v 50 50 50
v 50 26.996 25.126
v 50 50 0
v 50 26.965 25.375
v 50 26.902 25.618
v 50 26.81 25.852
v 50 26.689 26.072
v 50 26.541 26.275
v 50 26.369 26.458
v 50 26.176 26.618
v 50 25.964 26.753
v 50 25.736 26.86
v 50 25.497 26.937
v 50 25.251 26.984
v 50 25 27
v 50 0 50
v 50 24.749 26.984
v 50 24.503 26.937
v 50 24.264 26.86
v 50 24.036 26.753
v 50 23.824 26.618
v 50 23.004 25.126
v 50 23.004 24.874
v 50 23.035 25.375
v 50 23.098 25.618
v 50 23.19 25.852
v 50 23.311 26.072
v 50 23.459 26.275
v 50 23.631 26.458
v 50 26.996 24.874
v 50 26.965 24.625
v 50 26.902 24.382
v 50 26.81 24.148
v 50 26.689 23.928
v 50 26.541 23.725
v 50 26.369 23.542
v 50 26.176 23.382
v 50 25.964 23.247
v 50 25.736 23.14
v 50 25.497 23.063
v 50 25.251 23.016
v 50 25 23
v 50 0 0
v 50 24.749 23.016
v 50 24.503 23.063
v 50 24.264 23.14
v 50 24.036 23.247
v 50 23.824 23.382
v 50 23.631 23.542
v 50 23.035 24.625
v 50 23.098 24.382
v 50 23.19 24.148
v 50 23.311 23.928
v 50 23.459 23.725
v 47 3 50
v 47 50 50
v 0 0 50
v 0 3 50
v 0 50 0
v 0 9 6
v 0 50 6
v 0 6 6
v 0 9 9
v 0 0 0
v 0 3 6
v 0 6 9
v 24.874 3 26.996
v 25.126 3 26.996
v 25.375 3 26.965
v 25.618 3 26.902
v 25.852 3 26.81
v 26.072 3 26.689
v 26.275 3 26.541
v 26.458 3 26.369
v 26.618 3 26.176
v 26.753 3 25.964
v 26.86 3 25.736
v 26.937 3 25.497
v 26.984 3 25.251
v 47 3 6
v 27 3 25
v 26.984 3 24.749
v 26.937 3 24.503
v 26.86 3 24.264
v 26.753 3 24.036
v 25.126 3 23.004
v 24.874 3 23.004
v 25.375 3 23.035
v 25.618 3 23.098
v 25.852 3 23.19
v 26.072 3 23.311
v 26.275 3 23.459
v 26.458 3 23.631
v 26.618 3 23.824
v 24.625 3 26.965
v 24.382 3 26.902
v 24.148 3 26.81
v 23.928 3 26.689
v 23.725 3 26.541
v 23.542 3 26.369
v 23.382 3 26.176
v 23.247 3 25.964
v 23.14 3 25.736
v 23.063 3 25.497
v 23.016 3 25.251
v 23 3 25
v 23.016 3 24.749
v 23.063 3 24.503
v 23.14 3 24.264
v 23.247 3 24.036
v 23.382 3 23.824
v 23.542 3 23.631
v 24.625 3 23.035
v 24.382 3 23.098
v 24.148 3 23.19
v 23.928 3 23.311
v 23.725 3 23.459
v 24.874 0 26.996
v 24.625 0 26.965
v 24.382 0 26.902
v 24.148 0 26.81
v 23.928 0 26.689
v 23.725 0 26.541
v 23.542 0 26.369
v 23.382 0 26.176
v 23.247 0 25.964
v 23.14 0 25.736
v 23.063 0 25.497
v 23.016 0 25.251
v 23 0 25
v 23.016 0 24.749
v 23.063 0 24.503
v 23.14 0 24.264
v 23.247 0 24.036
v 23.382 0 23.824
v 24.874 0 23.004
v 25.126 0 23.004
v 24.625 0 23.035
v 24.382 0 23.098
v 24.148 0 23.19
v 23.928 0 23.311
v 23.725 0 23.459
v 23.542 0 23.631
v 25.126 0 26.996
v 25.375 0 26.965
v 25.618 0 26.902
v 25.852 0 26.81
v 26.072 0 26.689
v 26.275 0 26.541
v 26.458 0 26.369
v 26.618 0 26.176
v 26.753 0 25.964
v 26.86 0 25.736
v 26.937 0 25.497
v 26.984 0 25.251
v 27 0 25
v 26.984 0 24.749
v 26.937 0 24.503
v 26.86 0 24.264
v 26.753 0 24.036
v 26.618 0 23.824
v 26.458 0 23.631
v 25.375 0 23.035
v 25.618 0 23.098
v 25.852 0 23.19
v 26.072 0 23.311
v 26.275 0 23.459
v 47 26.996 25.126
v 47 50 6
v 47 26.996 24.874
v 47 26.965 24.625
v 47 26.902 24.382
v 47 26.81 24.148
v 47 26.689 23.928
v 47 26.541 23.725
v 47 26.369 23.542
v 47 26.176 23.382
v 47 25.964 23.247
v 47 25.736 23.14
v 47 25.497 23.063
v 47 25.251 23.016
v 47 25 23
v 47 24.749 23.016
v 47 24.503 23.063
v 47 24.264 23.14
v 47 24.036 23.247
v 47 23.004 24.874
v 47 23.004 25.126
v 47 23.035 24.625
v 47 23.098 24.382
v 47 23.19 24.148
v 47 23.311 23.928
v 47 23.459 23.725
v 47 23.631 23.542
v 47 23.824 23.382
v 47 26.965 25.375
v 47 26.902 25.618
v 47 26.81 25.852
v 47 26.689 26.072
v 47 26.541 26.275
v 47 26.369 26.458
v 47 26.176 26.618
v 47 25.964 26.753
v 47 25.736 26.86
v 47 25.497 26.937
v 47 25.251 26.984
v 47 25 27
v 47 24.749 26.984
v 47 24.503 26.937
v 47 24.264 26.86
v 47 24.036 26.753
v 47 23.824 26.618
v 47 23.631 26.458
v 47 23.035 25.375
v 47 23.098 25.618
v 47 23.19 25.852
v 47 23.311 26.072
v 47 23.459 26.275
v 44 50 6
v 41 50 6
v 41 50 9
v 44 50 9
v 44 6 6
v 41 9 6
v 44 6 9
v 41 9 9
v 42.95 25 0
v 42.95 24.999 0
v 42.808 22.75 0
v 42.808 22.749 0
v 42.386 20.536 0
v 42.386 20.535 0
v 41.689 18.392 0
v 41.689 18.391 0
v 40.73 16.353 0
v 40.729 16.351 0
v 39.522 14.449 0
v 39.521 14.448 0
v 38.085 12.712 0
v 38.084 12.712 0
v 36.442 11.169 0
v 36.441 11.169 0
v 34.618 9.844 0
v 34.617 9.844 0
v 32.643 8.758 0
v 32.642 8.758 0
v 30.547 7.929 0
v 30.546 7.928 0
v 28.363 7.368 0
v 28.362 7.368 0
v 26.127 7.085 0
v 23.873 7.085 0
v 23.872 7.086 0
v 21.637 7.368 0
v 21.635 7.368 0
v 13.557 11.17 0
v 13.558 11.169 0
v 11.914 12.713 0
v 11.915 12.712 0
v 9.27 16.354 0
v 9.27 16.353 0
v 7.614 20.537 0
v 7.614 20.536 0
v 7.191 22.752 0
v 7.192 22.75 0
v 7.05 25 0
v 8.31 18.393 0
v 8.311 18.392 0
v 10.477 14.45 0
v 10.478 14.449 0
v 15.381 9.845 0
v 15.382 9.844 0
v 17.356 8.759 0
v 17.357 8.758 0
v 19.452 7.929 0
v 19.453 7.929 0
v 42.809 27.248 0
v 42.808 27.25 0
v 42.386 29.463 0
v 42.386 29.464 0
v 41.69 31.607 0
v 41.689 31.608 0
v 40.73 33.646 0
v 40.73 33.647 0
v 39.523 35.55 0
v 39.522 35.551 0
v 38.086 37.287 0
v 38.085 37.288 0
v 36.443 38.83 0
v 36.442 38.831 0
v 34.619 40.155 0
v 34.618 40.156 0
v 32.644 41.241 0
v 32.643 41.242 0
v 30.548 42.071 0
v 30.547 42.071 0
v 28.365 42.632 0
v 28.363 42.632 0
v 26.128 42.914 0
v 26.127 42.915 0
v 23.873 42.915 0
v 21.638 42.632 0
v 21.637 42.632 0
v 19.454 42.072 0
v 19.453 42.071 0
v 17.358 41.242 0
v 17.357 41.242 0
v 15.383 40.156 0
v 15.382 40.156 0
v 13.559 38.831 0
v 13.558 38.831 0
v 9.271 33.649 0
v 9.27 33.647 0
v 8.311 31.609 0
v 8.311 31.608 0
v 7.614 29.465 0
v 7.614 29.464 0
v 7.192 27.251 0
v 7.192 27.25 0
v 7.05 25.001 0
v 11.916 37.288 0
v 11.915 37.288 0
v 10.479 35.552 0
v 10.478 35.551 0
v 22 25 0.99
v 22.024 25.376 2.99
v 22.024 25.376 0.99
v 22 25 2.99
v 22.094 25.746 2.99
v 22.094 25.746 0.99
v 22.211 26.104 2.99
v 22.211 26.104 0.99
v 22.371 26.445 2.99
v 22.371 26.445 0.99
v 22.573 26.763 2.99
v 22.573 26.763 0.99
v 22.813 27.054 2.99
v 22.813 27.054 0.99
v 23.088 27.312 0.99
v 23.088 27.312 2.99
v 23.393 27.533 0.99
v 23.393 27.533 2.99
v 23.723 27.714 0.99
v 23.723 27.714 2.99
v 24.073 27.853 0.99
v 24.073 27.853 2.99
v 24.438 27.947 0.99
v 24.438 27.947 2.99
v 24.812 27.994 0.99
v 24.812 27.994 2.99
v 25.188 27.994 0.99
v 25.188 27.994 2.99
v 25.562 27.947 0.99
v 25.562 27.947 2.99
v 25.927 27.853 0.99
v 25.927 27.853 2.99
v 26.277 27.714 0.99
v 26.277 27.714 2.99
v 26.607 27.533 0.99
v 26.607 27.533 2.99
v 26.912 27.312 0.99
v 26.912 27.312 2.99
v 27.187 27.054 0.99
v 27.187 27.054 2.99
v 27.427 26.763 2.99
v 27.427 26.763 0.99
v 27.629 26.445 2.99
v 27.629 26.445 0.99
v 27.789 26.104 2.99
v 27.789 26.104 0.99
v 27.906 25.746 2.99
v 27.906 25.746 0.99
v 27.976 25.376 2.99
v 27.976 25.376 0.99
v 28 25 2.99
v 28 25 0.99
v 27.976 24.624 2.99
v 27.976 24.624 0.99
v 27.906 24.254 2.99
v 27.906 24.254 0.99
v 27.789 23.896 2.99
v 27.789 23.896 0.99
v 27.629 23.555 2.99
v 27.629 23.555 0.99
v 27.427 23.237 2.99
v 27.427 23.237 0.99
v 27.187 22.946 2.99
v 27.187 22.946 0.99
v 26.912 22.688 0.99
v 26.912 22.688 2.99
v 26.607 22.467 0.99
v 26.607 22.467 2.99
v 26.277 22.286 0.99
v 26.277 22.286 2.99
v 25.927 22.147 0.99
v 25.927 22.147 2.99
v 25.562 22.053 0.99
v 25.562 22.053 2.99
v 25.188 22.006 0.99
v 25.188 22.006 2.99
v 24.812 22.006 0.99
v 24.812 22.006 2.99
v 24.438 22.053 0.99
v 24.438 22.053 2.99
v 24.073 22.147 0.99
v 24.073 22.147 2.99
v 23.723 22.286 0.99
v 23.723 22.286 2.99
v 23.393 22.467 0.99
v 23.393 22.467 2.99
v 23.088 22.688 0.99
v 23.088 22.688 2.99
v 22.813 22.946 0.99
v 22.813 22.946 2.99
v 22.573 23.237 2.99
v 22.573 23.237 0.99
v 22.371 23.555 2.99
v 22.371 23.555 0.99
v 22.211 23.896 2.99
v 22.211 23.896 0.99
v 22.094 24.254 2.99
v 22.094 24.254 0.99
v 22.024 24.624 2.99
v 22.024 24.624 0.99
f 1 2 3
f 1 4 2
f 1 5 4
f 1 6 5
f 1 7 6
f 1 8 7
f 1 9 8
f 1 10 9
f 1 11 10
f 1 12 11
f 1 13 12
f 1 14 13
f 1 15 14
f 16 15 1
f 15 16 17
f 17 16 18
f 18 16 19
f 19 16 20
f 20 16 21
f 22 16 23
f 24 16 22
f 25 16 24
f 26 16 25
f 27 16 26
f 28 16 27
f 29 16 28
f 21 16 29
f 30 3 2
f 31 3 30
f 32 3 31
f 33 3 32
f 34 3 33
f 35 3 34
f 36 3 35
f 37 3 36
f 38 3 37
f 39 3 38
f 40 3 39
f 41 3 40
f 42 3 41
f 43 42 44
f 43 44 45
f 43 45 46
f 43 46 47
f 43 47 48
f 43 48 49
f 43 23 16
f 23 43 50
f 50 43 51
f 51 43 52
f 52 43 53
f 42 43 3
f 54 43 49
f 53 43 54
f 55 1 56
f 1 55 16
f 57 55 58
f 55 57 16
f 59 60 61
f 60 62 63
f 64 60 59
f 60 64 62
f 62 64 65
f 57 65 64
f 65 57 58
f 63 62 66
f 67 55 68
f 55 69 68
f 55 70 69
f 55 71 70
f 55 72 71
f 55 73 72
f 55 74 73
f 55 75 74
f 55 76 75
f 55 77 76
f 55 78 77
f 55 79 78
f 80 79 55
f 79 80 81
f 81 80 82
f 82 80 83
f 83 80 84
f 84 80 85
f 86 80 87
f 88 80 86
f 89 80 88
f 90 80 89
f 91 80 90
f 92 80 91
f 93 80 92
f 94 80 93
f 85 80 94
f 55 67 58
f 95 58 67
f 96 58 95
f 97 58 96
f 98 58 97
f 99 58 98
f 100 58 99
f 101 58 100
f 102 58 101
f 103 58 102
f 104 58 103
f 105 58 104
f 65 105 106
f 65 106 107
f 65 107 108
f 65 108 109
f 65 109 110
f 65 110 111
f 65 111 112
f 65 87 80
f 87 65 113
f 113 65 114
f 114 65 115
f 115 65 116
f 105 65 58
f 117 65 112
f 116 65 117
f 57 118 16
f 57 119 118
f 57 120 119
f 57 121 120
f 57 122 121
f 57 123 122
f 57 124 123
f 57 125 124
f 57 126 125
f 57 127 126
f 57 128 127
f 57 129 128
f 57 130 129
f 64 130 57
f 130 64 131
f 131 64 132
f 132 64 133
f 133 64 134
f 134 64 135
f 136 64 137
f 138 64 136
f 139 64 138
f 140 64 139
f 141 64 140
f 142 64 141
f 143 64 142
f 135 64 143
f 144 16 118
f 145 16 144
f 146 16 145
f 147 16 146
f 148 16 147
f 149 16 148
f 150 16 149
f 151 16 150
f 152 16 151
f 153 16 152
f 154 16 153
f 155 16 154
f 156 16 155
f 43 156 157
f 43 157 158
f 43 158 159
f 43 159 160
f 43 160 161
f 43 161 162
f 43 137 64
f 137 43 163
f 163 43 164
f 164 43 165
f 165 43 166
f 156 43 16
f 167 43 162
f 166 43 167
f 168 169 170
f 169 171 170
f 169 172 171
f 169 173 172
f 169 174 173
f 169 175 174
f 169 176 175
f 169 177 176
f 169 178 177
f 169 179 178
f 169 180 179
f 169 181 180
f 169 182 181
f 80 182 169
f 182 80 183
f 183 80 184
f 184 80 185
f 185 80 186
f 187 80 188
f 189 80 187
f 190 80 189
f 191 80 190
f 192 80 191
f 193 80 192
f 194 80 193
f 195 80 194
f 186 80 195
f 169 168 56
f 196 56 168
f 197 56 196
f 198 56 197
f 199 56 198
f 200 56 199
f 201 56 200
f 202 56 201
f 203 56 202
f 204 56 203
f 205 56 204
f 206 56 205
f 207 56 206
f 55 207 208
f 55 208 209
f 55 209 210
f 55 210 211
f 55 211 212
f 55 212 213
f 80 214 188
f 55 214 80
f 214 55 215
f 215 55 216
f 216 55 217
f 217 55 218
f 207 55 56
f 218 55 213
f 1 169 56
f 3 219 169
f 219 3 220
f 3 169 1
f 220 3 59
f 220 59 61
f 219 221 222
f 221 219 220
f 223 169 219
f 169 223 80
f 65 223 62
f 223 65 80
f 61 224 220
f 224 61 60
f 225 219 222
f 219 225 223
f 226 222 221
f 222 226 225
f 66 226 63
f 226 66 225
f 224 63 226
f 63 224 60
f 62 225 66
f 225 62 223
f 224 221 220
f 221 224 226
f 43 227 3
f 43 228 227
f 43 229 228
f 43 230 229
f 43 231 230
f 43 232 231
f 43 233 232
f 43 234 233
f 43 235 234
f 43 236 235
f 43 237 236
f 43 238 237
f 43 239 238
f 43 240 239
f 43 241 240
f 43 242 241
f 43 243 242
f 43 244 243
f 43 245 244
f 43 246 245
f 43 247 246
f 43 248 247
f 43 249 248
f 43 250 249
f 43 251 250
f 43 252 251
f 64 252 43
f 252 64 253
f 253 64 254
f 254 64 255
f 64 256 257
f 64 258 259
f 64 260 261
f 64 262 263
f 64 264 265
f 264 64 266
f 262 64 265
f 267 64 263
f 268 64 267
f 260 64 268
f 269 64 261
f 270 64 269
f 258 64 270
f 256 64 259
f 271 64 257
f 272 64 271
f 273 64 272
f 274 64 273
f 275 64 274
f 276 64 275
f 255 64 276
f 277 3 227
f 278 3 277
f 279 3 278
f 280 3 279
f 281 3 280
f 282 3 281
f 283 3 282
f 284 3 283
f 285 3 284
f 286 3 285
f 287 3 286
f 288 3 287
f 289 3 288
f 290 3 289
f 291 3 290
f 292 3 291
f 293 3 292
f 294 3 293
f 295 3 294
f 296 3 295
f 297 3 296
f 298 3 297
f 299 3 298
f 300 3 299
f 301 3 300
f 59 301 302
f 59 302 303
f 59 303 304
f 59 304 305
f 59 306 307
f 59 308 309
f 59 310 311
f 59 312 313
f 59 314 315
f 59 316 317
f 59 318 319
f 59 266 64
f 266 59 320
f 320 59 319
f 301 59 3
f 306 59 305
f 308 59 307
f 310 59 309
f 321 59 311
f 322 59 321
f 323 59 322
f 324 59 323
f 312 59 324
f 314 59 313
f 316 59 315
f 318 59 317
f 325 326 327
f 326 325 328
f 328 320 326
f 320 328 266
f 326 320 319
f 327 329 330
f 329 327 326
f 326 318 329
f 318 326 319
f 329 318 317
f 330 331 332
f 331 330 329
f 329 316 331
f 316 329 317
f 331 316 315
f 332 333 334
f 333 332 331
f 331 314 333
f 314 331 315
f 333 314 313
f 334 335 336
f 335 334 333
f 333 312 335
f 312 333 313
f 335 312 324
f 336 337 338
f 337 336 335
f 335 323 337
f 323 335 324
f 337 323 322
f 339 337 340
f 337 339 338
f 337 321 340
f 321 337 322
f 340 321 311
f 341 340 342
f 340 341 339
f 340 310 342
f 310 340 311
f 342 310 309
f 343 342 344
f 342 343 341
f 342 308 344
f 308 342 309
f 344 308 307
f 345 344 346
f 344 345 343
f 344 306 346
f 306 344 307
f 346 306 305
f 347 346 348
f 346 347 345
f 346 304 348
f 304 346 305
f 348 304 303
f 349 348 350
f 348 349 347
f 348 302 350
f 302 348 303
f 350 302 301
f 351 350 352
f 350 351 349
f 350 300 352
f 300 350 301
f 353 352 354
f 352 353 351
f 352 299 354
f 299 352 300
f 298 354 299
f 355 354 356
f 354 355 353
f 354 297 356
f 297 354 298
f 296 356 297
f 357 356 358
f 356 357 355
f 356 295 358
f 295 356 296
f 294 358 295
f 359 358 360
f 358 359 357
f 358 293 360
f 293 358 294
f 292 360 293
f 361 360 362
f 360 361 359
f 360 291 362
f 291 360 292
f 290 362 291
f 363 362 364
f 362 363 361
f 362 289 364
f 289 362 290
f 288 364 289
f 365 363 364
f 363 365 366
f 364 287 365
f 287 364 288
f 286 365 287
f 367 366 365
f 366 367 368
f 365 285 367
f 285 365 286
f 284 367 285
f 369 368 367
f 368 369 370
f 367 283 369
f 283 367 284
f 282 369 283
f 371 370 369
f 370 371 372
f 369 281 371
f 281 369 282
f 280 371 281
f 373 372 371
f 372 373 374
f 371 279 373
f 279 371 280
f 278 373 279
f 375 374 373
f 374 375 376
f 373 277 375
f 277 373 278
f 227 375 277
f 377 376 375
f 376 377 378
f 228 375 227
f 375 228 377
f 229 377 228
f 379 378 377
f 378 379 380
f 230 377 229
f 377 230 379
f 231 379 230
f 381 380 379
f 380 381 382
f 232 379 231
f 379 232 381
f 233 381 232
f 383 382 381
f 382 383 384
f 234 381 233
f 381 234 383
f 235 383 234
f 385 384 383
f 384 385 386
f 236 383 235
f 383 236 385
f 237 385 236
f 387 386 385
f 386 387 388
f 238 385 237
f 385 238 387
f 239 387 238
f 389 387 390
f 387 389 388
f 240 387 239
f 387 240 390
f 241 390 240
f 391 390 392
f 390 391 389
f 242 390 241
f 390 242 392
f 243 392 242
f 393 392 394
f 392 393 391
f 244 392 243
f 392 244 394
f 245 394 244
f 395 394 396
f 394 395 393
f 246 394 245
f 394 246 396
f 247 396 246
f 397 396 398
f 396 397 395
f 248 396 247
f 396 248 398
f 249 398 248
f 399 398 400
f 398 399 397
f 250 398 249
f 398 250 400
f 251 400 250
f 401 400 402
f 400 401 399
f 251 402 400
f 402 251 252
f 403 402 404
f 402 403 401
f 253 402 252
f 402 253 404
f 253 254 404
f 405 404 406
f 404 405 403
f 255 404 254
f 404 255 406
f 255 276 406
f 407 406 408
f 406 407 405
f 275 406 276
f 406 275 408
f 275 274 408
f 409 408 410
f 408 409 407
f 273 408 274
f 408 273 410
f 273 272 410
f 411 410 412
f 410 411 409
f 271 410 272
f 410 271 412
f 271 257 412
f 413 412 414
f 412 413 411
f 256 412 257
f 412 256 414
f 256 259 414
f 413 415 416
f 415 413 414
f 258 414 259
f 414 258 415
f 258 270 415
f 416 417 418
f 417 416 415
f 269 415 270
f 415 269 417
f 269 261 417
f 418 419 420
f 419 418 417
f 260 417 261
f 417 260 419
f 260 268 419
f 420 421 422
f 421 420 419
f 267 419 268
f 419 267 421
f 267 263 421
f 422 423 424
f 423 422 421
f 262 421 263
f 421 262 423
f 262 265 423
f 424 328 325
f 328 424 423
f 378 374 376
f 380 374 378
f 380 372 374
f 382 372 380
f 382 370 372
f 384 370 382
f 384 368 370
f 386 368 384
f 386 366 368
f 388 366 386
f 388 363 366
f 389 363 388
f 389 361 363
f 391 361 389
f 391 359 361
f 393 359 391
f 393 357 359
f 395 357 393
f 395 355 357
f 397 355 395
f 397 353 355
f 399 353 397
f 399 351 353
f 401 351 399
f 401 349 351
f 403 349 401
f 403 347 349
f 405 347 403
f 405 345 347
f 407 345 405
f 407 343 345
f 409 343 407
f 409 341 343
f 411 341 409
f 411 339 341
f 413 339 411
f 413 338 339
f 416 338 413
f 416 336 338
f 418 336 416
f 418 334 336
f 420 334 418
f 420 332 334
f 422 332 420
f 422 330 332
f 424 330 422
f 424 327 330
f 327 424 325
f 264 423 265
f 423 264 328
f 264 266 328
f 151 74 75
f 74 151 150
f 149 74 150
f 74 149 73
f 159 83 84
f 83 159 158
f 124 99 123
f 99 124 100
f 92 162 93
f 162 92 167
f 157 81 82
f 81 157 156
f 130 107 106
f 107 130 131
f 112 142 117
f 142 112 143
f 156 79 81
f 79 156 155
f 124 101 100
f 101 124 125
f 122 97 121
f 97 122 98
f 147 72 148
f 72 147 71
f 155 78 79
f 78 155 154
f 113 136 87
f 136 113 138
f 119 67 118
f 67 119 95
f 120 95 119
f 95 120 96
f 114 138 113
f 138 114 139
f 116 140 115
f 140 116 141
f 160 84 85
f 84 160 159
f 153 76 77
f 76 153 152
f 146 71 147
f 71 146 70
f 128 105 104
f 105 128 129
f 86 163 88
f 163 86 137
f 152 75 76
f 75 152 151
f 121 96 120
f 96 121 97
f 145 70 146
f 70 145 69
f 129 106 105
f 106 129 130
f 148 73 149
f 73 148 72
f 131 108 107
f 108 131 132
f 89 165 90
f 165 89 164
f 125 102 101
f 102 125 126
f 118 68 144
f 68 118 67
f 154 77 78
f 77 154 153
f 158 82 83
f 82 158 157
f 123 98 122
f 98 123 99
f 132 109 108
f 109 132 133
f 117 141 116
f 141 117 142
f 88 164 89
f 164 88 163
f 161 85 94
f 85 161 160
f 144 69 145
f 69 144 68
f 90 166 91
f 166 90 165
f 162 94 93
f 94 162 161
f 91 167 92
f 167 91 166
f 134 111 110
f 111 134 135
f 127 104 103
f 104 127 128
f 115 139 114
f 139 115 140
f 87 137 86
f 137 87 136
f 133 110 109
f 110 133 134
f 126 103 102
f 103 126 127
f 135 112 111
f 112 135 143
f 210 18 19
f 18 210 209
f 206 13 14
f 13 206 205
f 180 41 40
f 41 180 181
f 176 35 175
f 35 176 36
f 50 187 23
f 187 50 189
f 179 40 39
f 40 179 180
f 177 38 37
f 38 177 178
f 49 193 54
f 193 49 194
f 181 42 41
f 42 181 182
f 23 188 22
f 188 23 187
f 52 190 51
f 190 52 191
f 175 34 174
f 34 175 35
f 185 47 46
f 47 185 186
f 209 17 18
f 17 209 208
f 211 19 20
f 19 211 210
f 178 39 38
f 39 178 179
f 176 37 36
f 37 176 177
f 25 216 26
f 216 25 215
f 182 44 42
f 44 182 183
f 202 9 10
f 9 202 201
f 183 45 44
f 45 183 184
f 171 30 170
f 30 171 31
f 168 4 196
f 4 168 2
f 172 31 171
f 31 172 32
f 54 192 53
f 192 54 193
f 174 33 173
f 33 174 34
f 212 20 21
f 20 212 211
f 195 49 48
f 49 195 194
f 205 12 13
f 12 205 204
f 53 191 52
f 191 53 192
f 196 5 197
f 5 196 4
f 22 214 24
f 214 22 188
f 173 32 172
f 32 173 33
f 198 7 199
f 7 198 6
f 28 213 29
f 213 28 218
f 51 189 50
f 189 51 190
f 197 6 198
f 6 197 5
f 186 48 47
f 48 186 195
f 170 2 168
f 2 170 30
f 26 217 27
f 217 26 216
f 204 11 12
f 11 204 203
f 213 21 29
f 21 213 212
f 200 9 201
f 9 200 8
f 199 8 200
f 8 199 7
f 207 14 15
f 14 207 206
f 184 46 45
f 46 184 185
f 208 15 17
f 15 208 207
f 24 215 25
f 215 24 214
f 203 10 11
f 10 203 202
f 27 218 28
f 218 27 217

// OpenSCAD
// file: enclosure_lib.scad
module SimpleCorner(wallWidth = 3,
                    totalWidth = 50,
                    totalHeight = 50,
                    totalDepth = 50,
                    gutterWidth = 3)
{
    // back wall
    cube([totalWidth,wallWidth,totalHeight]);
    // side wall
    translate([totalWidth,0,0])
        rotate([0,0,90])
            cube([totalDepth,wallWidth,totalHeight]);
    // base
    translate([0,totalDepth,0])
        rotate([90, 0, 0])
            cube([totalWidth,
                  wallWidth,
                  totalDepth]);
    // back gutter
    translate([0,
               wallWidth + gutterWidth,
               wallWidth * 2])
        rotate([0,90,0])
            cube([wallWidth, 
                  wallWidth, 
                  totalWidth - wallWidth - gutterWidth]);
    // side gutter
    translate([totalWidth - 2 * wallWidth - gutterWidth,
               totalDepth,
               wallWidth])
        rotate([90,0,0])
            cube([wallWidth, 
                  wallWidth, 
                  totalDepth - wallWidth - gutterWidth]);
    // gutter fill
    cube(3);
}
module Cone(holeRadius = 3)
{
    centerRadius    = 3;
    centerHeight    = 2;
    masterRadius    = 18;
    totalHeight     = 3;
    tanAlpha        = totalHeight / (masterRadius - centerRadius);
    holeHeight      = tanAlpha * (masterRadius - holeRadius);
    rotate_extrude()
        polygon(points=[
            [0, 0],
            [masterRadius, 0],
            [holeRadius, holeHeight],
            [holeRadius, 1],
            [0, 1]
        ]);
}
module Base(width = 50,
       depth = 50,
       halfHeight = 3)
{
    cube([width, depth, halfHeight]);
    translate([width / 2, depth / 2, halfHeight])
        Cone(3.5);
}

module BasedCorner(wallWidth = 3,
                   width = 50,
                   height = 50,
                   depth = 50,
                   gutterWidth = 3.4)
{
    translate([0, 0, wallWidth])
        union() {
            SimpleCorner(wallWidth, 
                         width, 
                         height - wallWidth, 
                         depth,
                         gutterWidth);
            translate([0,0, -wallWidth])
                difference() {
                    cube([width, depth, wallWidth]);
                    translate([width/2, depth/2, -.01])
                        Cone();
            }
        }
}

module top_profile(gutterWidth = 3) 
{
    polygon([
        [0, 0],
        [0, 9],
        [6, 9],
        [6, 6],
        [21,6],
        [21,3],
        [6 + gutterWidth, 3],
        [6 + gutterWidth, 0],
        [3 + gutterWidth, 0],
        [3 + gutterWidth, 3],
        [3, 3],
        [3, 0],
    ]);
}


module CableCoverBorderProfile(
    width = 6,
    borderHeight = 3,
    gutterHeight = 3,
    gutterWidth = 3)
{
    polygon([
        [0,0],
        [width, 0],
        [width, borderHeight],
        [width - gutterWidth, borderHeight],
        [width - gutterWidth, borderHeight + gutterHeight],
        [width, borderHeight + gutterHeight],
        [width, 2 * borderHeight + gutterHeight],
        [0, 2 * borderHeight + gutterHeight]
    ]);
}
module CableCoverBorderLinear(height = 10)
{
    linear_extrude(height)
        CableCoverBorderProfile();
}
union()
{
    //rotate_extrude(180)
    //    CableCoverBorderProfile();
    CableCoverBorderLinear();
    translate([-6, 3, 0])
        cube([6, 3, 10]);
    translate([-6, 9, 0])
        rotate([0, 0, 180])
            CableCoverBorderLinear();
}
// main file
use <enclosure_lib.scad>

$fn=50;
wall_h = 3;
h=50;
d=50;
w=50;

difference() {
    BasedCorner(wall_h, w, h, d, 3);
    // back hole
    translate([
        w / 2 ,
        wall_h+1,
        h / 2
    ])
        rotate([90])
            cylinder(5, 2, 2);
    // side hole
    translate([
        w - wall_h -1,
        w / 2,
        h / 2
    ])
        rotate([0, 90])
            cylinder(5, 2, 2);
}
